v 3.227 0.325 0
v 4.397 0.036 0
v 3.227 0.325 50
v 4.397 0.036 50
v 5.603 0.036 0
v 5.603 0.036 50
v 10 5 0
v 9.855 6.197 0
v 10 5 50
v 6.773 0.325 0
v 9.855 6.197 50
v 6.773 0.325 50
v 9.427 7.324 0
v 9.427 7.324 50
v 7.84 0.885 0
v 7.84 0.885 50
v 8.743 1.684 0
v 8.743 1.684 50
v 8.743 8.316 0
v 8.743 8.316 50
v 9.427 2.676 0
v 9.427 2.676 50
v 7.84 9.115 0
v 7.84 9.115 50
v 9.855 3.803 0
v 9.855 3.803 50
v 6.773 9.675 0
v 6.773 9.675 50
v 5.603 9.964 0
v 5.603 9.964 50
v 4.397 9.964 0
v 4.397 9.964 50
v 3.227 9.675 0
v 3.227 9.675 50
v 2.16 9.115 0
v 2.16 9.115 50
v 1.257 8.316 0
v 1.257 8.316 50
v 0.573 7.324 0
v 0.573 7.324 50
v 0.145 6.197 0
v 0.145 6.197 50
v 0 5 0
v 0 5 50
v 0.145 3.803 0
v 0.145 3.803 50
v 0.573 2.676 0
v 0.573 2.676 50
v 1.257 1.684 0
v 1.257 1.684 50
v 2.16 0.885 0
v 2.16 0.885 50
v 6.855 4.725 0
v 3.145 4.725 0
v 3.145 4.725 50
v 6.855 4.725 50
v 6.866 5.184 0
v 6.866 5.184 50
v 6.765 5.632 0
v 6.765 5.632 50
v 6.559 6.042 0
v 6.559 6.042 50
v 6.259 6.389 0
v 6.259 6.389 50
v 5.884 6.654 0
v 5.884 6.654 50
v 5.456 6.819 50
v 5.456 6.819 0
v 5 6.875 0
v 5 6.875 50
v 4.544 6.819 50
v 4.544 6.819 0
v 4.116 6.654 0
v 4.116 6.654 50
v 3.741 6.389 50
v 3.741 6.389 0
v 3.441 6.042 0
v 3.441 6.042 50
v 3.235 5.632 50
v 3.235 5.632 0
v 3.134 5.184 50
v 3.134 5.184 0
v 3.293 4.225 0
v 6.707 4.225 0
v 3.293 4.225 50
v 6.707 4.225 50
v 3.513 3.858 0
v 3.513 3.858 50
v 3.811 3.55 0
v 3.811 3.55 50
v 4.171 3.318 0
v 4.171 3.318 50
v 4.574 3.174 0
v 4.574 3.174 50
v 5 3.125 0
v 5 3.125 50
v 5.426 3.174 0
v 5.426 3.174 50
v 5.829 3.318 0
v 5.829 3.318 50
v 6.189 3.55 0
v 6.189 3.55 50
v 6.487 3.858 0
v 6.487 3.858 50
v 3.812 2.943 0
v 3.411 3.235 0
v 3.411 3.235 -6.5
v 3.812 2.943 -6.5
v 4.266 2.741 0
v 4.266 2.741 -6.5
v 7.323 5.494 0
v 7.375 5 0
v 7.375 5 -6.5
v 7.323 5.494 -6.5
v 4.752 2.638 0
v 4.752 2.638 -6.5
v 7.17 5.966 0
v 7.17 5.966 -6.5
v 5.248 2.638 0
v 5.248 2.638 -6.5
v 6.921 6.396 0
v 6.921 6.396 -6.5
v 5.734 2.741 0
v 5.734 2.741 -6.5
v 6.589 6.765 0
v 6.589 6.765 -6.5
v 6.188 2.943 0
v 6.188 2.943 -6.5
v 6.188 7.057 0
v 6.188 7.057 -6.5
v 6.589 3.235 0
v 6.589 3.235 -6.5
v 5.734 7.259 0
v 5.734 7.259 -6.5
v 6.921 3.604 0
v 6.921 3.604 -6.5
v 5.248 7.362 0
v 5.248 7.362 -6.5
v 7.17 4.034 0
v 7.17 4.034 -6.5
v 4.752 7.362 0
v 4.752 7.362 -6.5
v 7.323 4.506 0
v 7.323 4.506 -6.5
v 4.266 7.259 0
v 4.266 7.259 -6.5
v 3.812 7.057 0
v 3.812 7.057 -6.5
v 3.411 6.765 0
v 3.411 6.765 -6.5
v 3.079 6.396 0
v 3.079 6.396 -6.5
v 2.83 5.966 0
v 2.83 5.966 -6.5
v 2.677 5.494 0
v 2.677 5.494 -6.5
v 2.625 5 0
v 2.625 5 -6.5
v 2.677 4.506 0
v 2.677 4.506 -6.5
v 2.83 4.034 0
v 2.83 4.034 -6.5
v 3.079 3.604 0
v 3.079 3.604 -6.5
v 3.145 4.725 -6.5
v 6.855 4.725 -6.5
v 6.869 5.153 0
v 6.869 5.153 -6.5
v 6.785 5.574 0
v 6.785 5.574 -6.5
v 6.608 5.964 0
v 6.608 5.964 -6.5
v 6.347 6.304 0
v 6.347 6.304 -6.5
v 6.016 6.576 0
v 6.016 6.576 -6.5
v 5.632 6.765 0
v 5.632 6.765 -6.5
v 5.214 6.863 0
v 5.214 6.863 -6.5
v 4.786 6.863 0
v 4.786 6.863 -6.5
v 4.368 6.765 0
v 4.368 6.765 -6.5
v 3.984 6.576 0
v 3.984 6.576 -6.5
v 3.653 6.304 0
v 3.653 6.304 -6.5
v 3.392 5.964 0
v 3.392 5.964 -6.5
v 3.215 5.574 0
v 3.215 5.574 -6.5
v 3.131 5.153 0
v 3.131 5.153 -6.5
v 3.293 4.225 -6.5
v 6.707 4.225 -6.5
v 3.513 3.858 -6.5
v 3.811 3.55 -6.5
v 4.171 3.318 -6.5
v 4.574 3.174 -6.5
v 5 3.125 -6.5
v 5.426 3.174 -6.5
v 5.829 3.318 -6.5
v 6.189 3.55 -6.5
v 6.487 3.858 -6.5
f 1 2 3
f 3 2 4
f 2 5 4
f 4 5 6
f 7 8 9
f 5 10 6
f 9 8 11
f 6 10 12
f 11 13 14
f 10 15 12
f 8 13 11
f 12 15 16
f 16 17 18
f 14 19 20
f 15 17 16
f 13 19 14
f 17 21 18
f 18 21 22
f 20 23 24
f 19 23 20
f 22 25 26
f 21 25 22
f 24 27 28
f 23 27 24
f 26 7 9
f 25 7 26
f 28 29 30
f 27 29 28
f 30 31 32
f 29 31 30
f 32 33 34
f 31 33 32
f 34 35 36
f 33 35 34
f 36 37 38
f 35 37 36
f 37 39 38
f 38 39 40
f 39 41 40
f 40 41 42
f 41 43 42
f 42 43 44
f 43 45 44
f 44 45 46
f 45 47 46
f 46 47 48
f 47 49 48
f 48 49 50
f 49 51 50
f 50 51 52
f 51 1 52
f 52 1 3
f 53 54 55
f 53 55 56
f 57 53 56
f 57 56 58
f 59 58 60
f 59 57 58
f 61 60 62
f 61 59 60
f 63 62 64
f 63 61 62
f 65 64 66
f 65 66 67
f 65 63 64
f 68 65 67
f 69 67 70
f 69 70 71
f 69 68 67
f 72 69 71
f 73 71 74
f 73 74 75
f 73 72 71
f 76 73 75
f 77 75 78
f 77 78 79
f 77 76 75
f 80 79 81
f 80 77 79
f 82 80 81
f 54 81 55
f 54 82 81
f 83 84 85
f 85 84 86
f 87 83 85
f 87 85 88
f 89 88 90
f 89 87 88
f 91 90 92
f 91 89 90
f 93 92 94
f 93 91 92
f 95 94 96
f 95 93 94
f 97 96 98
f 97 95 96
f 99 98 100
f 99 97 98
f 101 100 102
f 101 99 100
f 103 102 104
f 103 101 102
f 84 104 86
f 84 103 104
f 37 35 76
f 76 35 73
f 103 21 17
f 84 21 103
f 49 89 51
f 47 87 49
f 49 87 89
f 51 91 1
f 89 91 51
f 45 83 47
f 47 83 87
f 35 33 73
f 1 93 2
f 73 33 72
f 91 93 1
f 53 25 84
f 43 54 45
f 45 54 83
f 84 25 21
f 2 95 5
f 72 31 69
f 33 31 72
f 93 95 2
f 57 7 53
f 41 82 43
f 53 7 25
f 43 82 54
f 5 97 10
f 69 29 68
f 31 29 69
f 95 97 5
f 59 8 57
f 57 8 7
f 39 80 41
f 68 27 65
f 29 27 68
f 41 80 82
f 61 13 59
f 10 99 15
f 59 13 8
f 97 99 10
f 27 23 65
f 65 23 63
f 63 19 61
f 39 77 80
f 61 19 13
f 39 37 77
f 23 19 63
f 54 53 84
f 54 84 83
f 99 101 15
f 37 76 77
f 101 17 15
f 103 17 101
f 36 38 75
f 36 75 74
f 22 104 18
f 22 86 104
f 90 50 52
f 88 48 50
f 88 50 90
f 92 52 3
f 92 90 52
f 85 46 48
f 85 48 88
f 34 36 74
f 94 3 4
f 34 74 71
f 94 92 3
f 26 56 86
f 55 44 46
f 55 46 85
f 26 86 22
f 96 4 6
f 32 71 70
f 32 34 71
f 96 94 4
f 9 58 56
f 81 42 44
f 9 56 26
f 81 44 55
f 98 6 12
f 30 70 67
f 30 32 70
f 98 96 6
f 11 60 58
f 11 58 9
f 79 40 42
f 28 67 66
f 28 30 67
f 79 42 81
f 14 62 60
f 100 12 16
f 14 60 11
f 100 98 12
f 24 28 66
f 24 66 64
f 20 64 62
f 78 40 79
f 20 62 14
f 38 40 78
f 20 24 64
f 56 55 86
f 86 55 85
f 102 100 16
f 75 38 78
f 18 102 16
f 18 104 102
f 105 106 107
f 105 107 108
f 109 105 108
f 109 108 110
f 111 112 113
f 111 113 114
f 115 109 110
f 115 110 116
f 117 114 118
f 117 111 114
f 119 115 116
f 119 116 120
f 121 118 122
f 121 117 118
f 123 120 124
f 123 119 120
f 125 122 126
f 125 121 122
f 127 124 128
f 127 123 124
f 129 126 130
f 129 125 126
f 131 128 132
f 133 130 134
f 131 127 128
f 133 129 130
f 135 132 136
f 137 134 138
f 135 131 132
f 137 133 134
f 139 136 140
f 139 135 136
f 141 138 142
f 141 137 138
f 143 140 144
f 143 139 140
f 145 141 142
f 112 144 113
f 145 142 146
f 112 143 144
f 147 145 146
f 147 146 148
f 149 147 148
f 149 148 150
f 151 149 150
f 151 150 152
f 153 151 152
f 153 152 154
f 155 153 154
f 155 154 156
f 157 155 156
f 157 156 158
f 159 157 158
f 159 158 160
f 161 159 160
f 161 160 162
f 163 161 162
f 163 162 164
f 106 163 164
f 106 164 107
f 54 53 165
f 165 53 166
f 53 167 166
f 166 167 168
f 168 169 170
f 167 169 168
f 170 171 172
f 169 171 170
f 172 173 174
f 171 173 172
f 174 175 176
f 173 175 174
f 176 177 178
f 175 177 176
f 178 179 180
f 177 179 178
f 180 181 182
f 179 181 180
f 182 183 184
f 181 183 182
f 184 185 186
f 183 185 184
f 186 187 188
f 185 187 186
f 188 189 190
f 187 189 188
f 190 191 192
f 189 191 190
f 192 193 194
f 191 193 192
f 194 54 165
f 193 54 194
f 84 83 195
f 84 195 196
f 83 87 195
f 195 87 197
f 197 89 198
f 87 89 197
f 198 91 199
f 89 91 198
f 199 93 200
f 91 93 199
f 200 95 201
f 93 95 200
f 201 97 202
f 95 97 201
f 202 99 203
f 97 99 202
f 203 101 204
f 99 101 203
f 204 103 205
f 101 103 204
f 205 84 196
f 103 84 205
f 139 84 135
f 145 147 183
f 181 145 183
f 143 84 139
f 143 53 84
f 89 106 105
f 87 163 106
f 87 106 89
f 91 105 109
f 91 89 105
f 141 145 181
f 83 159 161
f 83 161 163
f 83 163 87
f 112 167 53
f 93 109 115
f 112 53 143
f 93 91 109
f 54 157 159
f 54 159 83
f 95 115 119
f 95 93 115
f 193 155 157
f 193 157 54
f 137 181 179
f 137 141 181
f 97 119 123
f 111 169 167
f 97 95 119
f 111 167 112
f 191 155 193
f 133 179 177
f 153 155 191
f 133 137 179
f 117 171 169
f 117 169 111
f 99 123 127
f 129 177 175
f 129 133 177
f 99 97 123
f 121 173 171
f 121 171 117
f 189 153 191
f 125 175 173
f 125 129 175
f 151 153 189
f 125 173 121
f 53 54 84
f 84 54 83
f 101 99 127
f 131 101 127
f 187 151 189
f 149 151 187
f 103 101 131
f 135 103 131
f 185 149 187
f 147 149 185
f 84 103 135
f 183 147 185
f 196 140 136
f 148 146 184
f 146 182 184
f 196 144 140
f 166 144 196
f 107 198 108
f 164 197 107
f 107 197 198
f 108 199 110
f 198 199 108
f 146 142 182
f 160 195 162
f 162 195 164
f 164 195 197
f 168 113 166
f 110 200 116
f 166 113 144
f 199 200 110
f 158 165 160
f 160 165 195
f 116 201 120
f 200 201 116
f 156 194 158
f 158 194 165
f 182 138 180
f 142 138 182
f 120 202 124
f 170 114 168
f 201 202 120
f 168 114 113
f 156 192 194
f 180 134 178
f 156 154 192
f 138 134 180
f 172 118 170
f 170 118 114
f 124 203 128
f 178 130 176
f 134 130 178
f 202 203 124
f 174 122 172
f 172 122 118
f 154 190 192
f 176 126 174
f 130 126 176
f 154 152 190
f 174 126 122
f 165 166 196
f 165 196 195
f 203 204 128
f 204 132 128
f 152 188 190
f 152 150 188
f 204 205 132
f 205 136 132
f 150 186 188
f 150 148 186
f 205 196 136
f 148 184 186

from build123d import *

# Parameters (mm, degrees)
SKETCH009_R      = 5
EXTRUDE002_DEPTH = 50
SKETCH010_R      = 2.375
EXTRUDE003_DEPTH = 6.5


with BuildPart() as extrude001:
    # Sketch009 → Extrude002 (new body)
    with BuildSketch(Plane.XY):
        with Locations((5, 5)):
            Circle(SKETCH009_R)
        with BuildLine():
            Line((3.145276, 4.725), (6.854724, 4.725))
            ThreePointArc((6.854724, 4.725), (5, 6.875), (3.145276, 4.725))
        make_face(mode=Mode.SUBTRACT)
        with BuildLine():
            Line((3.292663, 4.225), (6.707337, 4.225))
            ThreePointArc((3.292663, 4.225), (5, 3.125), (6.707337, 4.225))
        make_face(mode=Mode.SUBTRACT)
    extrude(amount=EXTRUDE002_DEPTH)


with BuildPart() as extrude002:
    # Sketch010 → Extrude003 (new body)
    with BuildSketch(Plane.XY):
        with Locations((5, 5)):
            Circle(SKETCH010_R)
        with BuildLine():
            Line((3.145276, 4.725), (6.854724, 4.725))
            ThreePointArc((6.854724, 4.725), (5, 6.875), (3.145276, 4.725))
        make_face(mode=Mode.SUBTRACT)
        with BuildLine():
            Line((3.292663, 4.225), (6.707337, 4.225))
            ThreePointArc((3.292663, 4.225), (5, 3.125), (6.707337, 4.225))
        make_face(mode=Mode.SUBTRACT)
    extrude(amount=-EXTRUDE003_DEPTH)


solid = Compound([extrude001.part, extrude002.part])
